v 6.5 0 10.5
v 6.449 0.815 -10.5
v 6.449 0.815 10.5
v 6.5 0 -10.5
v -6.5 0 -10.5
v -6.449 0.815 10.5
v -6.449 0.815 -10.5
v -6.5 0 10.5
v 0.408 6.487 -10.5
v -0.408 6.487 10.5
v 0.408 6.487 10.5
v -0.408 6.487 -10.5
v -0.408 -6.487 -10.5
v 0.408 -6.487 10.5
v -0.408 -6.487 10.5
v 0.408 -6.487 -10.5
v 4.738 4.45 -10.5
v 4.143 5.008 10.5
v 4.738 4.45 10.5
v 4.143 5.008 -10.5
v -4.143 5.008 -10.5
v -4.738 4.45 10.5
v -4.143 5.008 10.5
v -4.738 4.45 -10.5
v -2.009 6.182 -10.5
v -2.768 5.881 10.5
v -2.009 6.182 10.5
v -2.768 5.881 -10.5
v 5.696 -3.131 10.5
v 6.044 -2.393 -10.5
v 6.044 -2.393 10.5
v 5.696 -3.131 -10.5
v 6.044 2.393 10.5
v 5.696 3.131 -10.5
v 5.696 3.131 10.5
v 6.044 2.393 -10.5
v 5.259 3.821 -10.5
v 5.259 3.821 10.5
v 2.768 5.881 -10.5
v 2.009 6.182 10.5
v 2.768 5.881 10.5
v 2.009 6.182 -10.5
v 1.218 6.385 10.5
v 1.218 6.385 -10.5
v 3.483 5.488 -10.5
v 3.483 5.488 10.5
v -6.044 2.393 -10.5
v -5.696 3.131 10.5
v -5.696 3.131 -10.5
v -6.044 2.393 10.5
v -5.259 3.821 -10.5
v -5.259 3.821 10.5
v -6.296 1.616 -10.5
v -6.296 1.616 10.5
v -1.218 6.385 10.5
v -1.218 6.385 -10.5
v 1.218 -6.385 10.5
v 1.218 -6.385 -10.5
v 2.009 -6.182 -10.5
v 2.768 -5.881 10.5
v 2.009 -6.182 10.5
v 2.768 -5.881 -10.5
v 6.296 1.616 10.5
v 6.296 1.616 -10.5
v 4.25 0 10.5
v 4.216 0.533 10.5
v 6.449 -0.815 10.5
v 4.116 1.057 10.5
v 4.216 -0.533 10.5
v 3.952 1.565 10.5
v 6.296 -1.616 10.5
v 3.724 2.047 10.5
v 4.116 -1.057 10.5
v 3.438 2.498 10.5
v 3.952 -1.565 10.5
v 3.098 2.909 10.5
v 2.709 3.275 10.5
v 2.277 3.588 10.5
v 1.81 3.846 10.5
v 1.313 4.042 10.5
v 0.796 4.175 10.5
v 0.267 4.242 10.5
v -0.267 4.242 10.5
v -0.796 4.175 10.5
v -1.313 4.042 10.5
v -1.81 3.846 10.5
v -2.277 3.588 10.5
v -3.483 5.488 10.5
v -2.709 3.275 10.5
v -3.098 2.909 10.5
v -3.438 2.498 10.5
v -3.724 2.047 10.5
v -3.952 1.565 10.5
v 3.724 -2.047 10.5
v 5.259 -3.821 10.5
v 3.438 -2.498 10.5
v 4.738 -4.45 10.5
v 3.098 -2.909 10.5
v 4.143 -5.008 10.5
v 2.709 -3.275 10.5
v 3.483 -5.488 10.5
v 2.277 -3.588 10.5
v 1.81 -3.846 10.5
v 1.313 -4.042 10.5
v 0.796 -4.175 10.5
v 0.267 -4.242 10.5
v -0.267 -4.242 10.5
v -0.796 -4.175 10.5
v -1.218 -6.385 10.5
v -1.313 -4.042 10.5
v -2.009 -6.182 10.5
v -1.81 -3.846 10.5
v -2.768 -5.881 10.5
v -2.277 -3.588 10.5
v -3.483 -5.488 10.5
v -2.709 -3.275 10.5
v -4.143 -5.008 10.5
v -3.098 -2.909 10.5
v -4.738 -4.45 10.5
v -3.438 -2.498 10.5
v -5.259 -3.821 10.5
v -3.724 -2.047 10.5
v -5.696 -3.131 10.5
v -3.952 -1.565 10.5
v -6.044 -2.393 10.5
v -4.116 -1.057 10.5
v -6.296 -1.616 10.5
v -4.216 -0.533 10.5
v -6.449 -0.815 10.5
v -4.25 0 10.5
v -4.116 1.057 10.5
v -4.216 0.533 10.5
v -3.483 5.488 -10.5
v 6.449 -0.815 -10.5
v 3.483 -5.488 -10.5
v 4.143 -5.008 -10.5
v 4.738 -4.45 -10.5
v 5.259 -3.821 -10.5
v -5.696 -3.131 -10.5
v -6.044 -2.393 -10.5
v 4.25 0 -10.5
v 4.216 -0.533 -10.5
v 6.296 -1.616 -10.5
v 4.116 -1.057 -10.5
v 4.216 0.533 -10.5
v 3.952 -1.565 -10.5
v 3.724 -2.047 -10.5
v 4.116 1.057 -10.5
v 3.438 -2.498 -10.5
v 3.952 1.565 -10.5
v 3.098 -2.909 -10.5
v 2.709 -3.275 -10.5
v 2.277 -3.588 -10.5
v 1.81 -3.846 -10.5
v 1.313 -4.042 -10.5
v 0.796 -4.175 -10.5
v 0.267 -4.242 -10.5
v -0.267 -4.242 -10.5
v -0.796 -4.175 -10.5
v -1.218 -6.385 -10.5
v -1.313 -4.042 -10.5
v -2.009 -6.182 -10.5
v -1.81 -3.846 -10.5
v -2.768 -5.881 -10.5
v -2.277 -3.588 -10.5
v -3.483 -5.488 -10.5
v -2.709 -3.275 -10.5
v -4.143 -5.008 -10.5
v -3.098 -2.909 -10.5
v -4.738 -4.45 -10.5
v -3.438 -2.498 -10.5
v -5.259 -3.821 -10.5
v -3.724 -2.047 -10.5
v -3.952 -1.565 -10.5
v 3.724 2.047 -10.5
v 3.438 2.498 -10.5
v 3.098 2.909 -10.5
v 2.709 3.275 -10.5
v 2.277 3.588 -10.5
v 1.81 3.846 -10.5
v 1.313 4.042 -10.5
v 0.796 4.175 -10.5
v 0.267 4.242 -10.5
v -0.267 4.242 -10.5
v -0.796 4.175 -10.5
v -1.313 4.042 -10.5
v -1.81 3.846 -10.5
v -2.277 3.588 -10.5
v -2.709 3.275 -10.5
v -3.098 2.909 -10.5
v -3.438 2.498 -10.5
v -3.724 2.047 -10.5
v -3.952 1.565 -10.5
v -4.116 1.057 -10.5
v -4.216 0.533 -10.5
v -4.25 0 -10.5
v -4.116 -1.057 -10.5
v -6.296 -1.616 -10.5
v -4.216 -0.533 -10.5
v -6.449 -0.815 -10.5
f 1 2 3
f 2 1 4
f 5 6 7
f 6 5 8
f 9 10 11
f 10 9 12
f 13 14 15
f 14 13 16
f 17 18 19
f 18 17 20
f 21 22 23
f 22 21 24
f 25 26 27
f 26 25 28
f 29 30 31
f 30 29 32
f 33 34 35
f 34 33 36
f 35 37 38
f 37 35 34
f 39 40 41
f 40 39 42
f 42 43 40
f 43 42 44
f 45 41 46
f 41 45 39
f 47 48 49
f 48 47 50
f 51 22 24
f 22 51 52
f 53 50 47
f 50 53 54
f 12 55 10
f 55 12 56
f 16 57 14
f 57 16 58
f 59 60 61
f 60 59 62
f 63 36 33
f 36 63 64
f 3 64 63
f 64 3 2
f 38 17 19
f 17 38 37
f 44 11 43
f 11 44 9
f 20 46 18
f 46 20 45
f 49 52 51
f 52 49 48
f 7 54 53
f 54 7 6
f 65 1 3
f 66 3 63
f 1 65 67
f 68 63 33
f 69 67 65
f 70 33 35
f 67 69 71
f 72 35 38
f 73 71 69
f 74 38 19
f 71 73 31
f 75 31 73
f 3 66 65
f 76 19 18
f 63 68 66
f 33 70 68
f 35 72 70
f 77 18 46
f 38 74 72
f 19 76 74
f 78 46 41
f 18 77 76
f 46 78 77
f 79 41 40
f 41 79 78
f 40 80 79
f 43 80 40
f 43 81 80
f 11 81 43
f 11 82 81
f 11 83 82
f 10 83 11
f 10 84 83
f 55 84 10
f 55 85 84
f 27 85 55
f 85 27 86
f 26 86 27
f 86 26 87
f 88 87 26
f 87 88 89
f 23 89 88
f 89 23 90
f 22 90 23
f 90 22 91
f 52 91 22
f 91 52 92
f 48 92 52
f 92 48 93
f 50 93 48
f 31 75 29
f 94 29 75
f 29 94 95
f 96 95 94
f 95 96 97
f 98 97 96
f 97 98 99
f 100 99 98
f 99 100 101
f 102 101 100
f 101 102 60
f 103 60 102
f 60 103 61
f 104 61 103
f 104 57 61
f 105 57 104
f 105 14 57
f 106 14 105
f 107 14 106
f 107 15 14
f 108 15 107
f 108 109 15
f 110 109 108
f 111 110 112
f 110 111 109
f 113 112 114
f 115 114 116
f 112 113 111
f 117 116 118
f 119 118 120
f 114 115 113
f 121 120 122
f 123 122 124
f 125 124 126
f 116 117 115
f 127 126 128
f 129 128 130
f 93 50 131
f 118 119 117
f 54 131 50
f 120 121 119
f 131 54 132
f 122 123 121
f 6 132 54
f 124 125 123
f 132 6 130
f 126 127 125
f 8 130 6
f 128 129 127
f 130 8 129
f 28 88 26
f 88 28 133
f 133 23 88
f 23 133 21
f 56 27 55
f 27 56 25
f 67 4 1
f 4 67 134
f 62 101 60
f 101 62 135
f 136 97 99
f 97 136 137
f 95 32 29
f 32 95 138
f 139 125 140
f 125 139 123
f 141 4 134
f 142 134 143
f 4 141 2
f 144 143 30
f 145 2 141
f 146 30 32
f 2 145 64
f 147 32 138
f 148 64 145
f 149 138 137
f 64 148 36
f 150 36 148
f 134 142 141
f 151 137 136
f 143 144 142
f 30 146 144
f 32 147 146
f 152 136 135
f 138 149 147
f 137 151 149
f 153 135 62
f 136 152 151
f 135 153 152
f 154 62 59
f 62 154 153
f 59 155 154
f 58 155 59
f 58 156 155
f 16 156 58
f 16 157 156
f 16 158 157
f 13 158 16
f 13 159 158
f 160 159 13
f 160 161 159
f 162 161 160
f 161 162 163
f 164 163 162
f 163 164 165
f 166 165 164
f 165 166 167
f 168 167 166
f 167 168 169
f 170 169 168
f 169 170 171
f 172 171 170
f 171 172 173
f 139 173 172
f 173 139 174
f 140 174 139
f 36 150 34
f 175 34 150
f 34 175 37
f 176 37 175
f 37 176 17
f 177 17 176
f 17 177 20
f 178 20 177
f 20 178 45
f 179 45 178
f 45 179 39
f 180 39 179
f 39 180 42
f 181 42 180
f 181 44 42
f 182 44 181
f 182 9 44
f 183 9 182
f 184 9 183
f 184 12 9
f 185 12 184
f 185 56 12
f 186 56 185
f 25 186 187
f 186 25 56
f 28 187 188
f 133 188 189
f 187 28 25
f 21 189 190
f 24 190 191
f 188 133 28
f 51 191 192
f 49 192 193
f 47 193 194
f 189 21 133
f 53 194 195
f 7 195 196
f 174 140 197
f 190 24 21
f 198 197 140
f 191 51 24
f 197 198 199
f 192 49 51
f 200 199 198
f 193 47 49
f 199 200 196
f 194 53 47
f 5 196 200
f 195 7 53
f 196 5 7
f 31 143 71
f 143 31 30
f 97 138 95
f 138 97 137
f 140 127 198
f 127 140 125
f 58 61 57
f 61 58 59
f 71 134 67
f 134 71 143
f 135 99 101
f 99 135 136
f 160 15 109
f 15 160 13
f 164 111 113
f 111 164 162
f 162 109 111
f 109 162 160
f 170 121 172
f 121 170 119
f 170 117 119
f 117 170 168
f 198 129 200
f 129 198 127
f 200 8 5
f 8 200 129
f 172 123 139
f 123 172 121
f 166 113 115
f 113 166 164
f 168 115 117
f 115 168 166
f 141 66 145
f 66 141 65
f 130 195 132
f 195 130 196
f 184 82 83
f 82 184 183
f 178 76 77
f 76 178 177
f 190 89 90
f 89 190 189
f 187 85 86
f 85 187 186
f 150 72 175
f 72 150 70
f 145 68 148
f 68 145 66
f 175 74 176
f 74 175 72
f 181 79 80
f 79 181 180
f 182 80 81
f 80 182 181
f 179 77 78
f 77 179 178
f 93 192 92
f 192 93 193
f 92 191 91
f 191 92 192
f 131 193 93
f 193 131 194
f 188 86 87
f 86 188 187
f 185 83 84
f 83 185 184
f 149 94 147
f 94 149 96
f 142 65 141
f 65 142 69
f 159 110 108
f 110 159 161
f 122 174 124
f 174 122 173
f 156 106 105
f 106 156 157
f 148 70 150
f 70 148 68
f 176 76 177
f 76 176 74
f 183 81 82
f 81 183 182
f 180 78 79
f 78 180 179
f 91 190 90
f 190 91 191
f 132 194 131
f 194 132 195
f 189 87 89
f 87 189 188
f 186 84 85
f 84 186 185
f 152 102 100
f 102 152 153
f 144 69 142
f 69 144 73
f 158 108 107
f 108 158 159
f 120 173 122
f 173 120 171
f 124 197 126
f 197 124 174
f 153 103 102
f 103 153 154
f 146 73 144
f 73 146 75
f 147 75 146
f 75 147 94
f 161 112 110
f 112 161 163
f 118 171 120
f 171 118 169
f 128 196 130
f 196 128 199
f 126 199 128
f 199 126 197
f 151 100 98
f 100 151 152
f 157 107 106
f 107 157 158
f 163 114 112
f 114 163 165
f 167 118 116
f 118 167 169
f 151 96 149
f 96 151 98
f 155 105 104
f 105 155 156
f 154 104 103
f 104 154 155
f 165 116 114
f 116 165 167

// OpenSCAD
$fn = 50;


difference() {
	union() {
		translate(v = [0, 0, -10.5000000000]) {
			cylinder(h = 21, r = 6.5000000000);
		}
	}
	union() {
		translate(v = [0, 0, -100.0000000000]) {
			cylinder(h = 200, r = 4.2500000000);
		}
	}
}
